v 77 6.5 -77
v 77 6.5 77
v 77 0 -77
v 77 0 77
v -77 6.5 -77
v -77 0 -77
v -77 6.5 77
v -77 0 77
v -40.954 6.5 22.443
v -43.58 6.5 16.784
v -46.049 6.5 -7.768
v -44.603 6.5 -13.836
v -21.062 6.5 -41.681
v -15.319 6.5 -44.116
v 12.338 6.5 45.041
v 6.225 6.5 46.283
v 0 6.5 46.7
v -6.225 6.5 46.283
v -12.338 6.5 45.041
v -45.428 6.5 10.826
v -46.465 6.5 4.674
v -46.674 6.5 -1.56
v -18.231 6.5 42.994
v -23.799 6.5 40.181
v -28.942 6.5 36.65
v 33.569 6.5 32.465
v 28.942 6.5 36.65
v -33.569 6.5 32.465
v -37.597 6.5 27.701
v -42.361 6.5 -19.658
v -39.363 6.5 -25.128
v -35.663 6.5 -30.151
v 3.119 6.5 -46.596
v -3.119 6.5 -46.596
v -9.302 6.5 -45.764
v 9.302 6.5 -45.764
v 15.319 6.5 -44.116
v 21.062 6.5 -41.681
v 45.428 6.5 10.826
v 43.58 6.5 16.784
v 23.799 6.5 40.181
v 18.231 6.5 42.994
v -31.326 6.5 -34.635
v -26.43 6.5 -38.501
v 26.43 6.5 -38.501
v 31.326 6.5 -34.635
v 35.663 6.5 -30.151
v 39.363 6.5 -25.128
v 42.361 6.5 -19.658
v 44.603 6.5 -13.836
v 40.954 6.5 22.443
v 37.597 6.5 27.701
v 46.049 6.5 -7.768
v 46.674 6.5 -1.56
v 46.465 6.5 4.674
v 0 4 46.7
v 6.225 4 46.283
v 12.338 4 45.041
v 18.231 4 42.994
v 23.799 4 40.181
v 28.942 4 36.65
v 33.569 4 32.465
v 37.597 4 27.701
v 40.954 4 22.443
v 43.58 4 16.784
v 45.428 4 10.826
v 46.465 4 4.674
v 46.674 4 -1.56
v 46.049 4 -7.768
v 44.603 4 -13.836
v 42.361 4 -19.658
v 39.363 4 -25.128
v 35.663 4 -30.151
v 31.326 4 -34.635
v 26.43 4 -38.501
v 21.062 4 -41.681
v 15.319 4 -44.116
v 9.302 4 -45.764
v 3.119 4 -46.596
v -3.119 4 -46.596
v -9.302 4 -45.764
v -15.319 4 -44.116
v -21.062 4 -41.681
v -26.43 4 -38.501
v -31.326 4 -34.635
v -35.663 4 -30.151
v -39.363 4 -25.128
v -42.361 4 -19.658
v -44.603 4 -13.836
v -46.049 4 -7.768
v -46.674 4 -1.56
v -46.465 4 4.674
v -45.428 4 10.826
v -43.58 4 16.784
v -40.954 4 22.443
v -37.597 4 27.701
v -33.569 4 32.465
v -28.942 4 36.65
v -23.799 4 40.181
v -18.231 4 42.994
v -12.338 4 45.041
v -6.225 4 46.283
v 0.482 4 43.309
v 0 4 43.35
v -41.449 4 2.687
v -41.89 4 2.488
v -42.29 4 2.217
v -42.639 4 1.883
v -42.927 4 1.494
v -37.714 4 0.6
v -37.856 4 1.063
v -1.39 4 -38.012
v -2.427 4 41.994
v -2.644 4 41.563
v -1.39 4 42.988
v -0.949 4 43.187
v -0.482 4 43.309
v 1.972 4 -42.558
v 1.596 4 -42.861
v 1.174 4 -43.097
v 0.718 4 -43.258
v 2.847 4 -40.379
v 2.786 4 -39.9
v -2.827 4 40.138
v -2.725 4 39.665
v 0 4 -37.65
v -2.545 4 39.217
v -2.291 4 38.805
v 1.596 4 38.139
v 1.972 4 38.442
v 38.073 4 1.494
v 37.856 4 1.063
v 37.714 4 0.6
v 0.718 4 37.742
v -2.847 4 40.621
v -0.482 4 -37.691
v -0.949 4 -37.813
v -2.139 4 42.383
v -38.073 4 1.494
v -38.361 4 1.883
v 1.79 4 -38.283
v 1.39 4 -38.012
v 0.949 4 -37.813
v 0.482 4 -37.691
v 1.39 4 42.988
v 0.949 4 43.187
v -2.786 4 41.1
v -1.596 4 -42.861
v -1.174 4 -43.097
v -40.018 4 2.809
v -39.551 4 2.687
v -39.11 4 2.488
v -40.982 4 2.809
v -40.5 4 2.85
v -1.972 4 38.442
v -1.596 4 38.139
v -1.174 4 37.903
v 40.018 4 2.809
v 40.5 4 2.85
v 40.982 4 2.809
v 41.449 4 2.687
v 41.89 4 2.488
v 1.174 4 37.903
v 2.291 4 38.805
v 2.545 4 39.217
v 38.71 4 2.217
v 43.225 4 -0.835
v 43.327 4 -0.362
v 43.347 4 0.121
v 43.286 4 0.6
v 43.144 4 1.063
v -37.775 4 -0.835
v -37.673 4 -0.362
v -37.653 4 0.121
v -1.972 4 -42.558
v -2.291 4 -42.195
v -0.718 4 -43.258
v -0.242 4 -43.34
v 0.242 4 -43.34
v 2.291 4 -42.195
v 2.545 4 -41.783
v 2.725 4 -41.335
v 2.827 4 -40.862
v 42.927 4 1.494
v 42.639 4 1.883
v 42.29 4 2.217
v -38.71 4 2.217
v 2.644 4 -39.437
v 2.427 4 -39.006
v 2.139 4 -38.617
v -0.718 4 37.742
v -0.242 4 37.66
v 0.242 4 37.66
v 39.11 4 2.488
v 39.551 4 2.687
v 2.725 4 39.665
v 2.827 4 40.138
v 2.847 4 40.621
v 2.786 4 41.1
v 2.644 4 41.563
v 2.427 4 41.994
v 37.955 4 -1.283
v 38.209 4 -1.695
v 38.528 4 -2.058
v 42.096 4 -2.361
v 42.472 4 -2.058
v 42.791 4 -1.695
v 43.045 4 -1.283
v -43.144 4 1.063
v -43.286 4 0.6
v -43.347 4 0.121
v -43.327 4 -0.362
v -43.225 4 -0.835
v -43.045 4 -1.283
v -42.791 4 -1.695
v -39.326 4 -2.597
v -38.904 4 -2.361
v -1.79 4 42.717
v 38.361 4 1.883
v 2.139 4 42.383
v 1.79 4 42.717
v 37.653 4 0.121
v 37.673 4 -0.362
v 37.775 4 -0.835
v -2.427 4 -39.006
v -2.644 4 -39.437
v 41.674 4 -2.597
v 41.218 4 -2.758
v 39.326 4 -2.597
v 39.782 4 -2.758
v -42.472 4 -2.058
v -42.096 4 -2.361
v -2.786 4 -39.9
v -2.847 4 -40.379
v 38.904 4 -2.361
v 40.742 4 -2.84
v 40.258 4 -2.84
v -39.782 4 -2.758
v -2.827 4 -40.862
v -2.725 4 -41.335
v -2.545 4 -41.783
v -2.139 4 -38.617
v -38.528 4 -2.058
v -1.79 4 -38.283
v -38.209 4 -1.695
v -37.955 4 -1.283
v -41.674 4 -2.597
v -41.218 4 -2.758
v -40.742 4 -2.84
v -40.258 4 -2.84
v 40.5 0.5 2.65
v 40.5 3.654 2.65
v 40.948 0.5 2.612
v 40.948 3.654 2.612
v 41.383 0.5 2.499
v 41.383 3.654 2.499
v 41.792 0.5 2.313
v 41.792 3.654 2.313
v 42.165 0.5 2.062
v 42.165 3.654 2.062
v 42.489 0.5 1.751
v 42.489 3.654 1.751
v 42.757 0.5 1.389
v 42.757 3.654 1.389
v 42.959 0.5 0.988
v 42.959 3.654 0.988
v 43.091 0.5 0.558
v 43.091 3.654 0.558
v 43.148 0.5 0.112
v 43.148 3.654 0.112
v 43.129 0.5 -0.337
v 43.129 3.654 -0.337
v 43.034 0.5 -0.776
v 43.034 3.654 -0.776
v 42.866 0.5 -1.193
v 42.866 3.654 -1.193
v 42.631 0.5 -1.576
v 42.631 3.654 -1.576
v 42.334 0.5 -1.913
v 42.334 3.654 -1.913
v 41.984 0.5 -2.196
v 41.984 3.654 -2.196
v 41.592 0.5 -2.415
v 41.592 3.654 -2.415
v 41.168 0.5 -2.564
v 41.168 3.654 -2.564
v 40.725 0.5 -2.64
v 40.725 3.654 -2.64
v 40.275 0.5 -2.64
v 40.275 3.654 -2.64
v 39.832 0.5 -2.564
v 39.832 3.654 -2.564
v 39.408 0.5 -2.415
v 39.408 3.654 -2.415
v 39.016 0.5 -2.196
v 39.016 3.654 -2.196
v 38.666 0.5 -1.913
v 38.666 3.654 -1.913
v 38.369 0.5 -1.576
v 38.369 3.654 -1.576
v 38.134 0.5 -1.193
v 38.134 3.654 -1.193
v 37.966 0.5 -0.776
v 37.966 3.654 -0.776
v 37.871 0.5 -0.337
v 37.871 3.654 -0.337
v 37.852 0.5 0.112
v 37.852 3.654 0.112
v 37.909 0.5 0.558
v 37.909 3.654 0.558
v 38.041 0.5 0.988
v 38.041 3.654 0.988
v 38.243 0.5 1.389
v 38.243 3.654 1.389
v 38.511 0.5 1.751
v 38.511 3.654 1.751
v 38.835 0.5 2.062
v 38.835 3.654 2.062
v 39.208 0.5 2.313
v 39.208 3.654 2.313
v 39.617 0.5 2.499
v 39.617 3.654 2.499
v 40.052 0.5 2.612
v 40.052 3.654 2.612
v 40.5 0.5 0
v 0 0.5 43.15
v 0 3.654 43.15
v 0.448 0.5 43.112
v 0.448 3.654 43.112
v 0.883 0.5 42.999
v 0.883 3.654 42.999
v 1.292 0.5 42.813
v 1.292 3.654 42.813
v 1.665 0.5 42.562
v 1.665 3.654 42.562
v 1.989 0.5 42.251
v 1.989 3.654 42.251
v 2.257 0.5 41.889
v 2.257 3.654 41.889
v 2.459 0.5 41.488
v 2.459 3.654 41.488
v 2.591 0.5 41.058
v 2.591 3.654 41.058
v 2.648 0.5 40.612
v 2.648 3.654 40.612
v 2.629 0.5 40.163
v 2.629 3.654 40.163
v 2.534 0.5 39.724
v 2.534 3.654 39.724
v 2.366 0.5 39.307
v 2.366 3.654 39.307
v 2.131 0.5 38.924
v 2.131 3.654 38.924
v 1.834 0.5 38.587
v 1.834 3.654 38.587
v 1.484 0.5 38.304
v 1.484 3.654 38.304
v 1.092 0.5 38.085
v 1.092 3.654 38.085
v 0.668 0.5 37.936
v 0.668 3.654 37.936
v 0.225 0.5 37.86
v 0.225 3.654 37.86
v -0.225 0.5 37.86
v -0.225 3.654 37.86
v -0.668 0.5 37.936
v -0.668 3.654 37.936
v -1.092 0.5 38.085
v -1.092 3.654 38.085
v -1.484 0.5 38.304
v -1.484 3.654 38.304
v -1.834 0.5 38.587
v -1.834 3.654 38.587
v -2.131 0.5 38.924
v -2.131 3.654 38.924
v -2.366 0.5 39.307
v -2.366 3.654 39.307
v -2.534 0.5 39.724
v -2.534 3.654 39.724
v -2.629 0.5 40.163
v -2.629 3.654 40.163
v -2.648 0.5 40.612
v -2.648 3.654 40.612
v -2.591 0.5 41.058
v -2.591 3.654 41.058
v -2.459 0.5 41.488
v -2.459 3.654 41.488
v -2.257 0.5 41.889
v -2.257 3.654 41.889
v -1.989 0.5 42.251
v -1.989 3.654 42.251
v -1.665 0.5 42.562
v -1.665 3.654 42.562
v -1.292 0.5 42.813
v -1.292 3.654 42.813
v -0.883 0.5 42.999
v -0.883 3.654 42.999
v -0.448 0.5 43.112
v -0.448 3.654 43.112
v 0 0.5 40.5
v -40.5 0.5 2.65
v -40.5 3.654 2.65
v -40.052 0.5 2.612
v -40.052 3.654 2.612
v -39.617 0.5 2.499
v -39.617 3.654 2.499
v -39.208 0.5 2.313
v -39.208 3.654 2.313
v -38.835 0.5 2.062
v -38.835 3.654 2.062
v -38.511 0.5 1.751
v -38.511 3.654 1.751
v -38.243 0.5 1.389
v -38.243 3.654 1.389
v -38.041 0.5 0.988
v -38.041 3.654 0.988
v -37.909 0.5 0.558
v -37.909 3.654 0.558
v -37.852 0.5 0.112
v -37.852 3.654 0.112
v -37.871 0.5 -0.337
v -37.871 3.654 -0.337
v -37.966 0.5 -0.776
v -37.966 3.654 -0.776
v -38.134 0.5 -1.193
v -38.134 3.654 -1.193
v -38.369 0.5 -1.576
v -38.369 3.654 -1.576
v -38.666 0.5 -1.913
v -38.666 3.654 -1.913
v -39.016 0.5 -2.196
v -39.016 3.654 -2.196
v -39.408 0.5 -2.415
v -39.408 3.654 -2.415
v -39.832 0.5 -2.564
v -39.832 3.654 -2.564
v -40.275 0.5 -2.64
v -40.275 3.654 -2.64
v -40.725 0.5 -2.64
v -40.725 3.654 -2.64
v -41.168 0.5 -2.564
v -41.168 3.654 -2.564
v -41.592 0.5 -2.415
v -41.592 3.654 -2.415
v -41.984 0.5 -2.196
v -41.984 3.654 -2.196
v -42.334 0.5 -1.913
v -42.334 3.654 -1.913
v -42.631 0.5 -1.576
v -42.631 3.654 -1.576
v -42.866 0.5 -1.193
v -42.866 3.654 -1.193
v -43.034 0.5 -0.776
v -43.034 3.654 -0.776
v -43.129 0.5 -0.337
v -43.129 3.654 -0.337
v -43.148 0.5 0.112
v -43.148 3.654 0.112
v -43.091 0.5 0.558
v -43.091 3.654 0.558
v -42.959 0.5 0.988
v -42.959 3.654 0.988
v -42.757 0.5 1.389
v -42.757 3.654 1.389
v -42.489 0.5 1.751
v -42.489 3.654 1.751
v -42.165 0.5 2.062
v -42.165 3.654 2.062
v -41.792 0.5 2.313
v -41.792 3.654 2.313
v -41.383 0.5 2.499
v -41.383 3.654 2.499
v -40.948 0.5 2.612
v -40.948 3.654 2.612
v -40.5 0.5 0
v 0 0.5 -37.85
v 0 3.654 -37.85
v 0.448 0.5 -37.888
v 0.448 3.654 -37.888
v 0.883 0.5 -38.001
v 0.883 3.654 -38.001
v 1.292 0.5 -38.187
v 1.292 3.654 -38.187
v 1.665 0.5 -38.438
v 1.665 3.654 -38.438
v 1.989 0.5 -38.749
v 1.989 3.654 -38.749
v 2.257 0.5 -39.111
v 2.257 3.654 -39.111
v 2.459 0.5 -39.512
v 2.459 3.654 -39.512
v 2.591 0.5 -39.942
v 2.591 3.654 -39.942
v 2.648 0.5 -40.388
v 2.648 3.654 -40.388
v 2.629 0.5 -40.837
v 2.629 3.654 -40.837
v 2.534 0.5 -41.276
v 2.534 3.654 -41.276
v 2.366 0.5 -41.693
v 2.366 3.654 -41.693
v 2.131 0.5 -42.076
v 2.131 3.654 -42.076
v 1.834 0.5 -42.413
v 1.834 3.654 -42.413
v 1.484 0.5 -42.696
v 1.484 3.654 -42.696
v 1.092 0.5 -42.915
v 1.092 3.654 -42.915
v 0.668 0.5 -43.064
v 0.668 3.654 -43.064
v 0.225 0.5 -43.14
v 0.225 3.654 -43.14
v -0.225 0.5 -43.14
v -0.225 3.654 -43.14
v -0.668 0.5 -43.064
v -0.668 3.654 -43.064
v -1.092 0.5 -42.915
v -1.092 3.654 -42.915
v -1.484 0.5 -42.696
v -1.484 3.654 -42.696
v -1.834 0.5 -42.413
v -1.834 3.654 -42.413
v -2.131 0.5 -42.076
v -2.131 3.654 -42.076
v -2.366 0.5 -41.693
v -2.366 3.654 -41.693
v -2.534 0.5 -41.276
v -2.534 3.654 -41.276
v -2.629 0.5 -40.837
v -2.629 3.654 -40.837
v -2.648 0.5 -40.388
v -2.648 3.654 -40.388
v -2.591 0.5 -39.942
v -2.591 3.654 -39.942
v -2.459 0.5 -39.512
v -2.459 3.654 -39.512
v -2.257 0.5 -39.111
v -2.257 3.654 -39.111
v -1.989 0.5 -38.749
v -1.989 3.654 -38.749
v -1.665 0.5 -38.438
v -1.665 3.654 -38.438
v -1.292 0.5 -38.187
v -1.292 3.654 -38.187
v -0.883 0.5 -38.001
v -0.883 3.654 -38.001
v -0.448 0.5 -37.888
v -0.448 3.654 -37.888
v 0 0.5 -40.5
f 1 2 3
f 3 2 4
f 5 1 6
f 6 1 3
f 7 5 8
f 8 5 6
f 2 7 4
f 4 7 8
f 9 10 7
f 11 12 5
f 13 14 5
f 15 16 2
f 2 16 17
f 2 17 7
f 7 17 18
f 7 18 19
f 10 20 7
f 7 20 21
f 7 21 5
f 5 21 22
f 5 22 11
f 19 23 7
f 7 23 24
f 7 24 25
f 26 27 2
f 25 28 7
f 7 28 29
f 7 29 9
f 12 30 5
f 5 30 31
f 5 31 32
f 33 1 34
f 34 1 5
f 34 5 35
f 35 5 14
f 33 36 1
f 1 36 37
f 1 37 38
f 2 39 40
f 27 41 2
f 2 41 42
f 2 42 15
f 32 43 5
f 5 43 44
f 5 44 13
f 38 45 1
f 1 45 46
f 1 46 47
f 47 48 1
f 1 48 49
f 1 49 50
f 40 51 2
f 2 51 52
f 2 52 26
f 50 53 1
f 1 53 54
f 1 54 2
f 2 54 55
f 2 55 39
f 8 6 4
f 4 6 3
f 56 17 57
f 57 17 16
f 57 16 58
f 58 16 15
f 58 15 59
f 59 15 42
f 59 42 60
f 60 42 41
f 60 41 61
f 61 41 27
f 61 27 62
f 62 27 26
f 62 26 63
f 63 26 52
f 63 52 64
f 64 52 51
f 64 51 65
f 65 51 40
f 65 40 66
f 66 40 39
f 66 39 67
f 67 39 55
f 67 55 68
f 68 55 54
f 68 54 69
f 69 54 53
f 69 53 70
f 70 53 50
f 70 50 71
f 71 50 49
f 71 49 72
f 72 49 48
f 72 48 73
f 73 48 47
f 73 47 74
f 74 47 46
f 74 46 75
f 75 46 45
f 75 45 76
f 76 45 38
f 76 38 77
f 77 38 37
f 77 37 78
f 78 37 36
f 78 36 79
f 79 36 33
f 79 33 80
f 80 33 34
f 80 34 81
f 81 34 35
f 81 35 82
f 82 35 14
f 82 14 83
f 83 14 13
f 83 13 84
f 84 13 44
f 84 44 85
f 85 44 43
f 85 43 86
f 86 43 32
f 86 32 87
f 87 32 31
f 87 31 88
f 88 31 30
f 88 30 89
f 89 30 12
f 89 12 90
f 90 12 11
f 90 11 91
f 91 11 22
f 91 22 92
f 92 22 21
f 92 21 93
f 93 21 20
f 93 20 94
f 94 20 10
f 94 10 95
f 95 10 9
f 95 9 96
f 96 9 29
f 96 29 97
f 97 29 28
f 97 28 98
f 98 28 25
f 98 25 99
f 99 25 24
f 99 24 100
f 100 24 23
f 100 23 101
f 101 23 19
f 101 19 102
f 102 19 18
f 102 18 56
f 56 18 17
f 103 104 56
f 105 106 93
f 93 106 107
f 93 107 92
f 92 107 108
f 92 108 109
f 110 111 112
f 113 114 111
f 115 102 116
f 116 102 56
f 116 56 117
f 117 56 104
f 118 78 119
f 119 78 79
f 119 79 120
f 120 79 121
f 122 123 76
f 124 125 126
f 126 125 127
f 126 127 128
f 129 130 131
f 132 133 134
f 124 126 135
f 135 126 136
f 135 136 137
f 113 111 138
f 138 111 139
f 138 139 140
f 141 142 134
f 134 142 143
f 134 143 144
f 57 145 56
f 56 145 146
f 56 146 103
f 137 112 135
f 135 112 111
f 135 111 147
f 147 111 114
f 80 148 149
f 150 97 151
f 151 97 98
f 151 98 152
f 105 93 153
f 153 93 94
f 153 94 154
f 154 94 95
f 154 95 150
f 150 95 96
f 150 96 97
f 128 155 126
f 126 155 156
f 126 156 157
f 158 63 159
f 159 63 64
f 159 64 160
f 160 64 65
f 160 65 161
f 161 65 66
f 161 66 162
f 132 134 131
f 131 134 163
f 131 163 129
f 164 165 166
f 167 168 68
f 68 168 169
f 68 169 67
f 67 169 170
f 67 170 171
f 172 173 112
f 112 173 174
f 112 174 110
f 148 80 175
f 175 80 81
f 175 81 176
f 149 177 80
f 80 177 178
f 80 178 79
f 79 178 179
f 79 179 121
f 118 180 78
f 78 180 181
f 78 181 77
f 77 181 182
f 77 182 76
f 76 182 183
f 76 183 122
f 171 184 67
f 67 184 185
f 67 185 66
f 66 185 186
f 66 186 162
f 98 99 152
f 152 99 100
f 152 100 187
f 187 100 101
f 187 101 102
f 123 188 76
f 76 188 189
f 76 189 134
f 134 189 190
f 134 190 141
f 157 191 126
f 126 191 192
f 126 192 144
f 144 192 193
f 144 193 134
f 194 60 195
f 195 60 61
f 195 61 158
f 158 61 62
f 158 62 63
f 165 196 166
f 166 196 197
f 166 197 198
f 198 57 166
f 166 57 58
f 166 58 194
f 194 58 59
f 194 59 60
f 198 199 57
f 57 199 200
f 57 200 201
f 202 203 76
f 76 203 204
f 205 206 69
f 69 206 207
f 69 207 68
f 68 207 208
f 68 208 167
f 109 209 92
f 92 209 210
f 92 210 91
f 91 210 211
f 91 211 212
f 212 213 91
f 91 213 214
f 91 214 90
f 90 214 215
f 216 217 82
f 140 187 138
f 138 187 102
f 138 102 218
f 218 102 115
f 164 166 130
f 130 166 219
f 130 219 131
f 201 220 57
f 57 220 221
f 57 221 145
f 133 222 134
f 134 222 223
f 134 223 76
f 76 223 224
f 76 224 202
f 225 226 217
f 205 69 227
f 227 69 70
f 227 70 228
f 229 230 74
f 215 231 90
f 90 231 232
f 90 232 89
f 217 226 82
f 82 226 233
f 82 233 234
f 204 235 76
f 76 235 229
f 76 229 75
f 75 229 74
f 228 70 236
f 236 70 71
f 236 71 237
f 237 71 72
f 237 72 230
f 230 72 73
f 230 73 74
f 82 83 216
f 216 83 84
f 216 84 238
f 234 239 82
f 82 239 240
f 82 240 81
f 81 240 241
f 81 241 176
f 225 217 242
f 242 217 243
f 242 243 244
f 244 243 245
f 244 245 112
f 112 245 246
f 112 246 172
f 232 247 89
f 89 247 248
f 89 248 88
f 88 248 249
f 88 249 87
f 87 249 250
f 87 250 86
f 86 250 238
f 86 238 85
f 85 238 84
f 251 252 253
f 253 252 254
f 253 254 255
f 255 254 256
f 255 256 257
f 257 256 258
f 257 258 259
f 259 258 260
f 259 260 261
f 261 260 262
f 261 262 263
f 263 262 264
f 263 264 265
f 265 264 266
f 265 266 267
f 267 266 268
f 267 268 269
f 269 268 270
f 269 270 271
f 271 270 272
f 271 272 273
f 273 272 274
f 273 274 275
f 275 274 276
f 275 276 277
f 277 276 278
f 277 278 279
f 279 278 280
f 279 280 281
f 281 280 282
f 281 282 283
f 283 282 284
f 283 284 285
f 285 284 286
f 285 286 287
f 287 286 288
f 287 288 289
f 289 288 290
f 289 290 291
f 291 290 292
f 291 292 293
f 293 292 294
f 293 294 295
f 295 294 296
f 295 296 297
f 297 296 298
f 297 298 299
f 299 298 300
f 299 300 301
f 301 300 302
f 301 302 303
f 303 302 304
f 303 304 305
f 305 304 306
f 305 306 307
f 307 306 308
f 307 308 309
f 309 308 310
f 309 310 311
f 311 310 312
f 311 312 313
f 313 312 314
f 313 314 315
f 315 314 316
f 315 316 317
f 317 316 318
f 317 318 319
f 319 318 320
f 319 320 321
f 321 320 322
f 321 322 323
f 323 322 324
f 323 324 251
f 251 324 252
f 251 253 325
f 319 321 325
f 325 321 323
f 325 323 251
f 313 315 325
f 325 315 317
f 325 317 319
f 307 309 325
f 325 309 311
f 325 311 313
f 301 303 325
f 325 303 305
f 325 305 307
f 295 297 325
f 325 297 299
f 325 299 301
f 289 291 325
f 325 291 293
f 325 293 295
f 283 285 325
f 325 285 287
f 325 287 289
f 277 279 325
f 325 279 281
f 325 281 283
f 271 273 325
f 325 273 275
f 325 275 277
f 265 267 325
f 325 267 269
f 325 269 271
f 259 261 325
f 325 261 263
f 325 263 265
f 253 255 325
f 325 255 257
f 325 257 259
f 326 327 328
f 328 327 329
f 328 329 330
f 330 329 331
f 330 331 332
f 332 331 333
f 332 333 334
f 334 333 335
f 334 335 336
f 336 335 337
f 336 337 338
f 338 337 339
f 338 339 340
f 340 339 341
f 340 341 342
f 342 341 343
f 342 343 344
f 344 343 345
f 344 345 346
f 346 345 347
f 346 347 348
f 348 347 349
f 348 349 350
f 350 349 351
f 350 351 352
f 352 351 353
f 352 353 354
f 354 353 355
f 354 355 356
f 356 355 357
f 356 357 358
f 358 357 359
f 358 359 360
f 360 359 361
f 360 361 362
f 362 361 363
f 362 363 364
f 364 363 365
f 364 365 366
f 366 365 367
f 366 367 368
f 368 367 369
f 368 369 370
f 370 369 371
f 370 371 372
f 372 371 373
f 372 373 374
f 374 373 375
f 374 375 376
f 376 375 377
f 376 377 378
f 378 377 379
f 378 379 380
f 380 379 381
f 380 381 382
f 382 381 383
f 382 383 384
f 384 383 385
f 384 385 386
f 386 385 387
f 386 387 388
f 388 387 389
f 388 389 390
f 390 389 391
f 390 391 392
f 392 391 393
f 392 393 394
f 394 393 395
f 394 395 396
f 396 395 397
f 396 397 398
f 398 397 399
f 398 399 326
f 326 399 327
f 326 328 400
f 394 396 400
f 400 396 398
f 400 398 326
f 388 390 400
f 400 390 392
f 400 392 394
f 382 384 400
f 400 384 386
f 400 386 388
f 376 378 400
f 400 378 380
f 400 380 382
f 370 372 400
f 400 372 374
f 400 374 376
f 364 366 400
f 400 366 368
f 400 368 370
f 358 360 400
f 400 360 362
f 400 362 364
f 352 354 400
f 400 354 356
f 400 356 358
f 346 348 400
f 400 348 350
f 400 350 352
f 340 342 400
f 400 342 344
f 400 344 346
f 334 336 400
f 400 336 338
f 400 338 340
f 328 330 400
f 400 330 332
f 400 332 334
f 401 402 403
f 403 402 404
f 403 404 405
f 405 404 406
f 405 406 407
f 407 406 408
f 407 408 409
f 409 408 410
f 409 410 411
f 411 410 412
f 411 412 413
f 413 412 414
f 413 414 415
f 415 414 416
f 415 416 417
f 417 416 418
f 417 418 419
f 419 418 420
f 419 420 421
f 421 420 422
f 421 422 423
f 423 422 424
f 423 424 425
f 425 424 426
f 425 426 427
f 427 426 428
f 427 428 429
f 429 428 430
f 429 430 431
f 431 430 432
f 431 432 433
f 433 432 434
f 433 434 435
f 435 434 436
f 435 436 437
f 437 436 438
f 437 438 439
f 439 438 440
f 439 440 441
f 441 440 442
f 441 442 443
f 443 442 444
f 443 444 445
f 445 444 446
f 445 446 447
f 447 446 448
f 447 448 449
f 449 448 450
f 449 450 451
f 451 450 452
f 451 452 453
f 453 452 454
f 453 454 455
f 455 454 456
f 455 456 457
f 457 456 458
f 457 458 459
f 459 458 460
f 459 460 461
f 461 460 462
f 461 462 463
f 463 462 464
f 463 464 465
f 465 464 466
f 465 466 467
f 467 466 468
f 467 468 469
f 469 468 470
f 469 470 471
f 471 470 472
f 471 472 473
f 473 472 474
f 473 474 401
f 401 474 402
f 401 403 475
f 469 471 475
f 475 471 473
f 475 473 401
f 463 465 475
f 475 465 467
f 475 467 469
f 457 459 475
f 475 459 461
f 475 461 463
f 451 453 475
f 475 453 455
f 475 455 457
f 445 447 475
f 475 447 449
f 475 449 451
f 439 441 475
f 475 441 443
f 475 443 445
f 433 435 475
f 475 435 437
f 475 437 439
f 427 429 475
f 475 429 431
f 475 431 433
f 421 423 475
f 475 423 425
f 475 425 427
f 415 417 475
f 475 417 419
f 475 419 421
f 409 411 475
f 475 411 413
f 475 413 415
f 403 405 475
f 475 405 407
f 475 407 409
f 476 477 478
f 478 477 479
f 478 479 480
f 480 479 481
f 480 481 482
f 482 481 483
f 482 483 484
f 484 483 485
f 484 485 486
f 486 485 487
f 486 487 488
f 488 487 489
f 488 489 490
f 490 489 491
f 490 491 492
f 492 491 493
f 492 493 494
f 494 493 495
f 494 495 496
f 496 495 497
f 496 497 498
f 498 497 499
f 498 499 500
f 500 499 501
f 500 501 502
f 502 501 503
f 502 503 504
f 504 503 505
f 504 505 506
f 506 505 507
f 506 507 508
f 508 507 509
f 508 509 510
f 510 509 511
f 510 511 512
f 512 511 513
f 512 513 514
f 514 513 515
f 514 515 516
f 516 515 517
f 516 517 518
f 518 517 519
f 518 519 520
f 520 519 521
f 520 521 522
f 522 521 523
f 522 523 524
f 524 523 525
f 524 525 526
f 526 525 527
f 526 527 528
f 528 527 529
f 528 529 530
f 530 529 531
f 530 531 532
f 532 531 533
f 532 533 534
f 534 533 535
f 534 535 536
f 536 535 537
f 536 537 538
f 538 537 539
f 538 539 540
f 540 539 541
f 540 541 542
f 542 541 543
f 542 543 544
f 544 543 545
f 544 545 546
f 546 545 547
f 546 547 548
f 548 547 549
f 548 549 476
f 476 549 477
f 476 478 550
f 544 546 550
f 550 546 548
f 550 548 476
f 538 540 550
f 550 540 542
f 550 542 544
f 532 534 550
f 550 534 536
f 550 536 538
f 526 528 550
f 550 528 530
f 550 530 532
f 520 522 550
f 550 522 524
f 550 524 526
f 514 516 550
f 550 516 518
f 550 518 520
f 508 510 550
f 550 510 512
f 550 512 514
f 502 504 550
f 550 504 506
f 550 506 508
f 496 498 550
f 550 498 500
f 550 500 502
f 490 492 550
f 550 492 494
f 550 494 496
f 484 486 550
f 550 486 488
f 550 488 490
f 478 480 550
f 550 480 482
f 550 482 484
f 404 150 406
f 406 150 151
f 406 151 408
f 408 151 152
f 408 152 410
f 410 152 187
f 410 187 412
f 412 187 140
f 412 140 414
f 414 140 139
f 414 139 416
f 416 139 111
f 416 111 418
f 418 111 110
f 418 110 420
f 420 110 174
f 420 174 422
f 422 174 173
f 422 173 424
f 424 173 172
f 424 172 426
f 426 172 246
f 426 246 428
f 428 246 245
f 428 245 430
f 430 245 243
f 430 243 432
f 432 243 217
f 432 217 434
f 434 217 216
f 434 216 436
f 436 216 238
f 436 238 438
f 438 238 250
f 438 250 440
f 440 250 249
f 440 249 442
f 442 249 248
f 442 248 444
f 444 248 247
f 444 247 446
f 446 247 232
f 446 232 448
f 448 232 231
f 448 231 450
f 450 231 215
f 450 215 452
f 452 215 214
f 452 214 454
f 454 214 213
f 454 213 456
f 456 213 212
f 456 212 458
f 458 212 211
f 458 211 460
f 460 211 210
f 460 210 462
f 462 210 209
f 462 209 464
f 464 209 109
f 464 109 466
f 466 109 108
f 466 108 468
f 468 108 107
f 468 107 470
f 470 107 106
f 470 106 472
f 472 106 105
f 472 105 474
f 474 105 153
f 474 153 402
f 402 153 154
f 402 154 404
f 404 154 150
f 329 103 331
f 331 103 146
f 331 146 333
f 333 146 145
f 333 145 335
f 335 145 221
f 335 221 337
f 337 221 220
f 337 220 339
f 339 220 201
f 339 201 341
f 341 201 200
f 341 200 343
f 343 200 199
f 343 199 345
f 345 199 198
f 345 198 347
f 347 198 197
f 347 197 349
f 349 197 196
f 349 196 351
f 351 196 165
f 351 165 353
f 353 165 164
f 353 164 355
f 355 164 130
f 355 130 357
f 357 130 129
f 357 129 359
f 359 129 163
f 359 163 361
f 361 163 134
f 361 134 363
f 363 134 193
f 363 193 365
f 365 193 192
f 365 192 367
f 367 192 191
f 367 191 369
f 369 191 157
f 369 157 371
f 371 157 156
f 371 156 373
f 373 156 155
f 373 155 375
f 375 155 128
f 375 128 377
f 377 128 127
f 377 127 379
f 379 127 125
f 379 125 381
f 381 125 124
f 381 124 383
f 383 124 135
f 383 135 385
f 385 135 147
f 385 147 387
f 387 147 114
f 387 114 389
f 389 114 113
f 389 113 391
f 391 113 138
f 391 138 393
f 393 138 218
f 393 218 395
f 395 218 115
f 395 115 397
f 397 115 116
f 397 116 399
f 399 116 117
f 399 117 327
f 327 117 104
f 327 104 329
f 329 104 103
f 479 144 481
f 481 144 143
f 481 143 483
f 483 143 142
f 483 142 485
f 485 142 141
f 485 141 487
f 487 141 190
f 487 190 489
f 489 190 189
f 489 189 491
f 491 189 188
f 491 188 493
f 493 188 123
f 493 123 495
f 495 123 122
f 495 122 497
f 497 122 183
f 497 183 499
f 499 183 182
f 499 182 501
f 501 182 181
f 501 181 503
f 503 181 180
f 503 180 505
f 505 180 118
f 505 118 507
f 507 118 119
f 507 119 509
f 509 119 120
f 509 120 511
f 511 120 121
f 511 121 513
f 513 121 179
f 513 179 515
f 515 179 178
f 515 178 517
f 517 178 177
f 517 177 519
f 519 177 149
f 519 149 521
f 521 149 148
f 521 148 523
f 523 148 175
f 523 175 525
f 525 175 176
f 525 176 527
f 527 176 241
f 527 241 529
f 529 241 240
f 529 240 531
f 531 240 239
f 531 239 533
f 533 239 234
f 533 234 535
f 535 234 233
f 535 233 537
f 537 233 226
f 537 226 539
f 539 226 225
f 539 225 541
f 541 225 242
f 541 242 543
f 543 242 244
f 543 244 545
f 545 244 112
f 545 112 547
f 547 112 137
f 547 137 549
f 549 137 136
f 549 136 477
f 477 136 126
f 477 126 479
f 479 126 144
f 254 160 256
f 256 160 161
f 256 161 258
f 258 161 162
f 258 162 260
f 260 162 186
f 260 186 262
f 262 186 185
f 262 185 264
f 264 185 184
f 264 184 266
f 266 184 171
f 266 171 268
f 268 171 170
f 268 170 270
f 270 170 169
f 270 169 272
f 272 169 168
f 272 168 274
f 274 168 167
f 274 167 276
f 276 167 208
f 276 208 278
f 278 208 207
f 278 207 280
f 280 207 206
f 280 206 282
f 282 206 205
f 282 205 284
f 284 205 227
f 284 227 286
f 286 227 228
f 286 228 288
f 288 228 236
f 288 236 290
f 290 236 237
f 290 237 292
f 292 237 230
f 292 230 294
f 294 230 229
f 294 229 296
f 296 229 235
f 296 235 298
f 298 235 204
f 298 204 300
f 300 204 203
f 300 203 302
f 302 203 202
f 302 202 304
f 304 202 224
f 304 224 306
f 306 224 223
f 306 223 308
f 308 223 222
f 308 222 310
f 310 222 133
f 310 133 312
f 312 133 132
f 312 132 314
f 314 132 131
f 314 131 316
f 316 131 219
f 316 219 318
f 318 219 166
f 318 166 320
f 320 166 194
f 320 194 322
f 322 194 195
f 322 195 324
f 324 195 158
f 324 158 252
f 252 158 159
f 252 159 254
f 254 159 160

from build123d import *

# Parameters (mm, degrees)
SKETCH1_W           = 154
SKETCH1_H           = 154
BOSS_EXTRUDE1_DEPTH = 6.5
SKETCH2_R           = 46.7
CUT_EXTRUDE1_DEPTH  = 2.5
SKETCH3_R           = 2.65
CUT_EXTRUDE2_DEPTH  = 3.5
CHAMFER1_SIZE       = 0.2
CHAMFER1_SIZE2      = 0.346410162


with BuildPart() as part:
    # Sketch1 → Boss-Extrude1 (new body)
    with BuildSketch(Plane(origin=(0, 0, 0), x_dir=(1, 0, 0), z_dir=(0, 1, 0))):
        Rectangle(SKETCH1_W, SKETCH1_H)
    extrude(amount=BOSS_EXTRUDE1_DEPTH)

    # Sketch2 → Cut-Extrude1 (cut)
    with BuildSketch(Plane(origin=(0, 6.5, 0), x_dir=(1, 0, 0), z_dir=(0, 1, 0))):
        Circle(SKETCH2_R)
    extrude(amount=-CUT_EXTRUDE1_DEPTH, mode=Mode.SUBTRACT)

    # Sketch3 → Cut-Extrude2 (cut)
    with BuildSketch(Plane(origin=(0, 4, 0), x_dir=(1, 0, 0), z_dir=(0, 1, 0))):
        with Locations((0, 40.5)):
            Circle(SKETCH3_R)
        with Locations((-40.5, 0)):
            Circle(SKETCH3_R)
        with Locations((0, -40.5)):
            Circle(SKETCH3_R)
        with Locations((40.5, 0)):
            Circle(SKETCH3_R)
    extrude(amount=-CUT_EXTRUDE2_DEPTH, mode=Mode.SUBTRACT)

    # Chamfer1
    chamfer1_edges = [part.edges().sort_by_distance(p)[0] for p in [
        (-2.65, 4, -40.5),
        (-43.15, 4, 0),
        (-2.65, 4, 40.5),
        (37.85, 4, 0),
    ]]
    chamfer1_side = [part.faces().sort_by_distance(p)[0] for p in [
        (0, 4, 0),
    ]]
    chamfer(chamfer1_edges, length=CHAMFER1_SIZE, length2=CHAMFER1_SIZE2, reference=chamfer1_side[0])


solid = part.part
